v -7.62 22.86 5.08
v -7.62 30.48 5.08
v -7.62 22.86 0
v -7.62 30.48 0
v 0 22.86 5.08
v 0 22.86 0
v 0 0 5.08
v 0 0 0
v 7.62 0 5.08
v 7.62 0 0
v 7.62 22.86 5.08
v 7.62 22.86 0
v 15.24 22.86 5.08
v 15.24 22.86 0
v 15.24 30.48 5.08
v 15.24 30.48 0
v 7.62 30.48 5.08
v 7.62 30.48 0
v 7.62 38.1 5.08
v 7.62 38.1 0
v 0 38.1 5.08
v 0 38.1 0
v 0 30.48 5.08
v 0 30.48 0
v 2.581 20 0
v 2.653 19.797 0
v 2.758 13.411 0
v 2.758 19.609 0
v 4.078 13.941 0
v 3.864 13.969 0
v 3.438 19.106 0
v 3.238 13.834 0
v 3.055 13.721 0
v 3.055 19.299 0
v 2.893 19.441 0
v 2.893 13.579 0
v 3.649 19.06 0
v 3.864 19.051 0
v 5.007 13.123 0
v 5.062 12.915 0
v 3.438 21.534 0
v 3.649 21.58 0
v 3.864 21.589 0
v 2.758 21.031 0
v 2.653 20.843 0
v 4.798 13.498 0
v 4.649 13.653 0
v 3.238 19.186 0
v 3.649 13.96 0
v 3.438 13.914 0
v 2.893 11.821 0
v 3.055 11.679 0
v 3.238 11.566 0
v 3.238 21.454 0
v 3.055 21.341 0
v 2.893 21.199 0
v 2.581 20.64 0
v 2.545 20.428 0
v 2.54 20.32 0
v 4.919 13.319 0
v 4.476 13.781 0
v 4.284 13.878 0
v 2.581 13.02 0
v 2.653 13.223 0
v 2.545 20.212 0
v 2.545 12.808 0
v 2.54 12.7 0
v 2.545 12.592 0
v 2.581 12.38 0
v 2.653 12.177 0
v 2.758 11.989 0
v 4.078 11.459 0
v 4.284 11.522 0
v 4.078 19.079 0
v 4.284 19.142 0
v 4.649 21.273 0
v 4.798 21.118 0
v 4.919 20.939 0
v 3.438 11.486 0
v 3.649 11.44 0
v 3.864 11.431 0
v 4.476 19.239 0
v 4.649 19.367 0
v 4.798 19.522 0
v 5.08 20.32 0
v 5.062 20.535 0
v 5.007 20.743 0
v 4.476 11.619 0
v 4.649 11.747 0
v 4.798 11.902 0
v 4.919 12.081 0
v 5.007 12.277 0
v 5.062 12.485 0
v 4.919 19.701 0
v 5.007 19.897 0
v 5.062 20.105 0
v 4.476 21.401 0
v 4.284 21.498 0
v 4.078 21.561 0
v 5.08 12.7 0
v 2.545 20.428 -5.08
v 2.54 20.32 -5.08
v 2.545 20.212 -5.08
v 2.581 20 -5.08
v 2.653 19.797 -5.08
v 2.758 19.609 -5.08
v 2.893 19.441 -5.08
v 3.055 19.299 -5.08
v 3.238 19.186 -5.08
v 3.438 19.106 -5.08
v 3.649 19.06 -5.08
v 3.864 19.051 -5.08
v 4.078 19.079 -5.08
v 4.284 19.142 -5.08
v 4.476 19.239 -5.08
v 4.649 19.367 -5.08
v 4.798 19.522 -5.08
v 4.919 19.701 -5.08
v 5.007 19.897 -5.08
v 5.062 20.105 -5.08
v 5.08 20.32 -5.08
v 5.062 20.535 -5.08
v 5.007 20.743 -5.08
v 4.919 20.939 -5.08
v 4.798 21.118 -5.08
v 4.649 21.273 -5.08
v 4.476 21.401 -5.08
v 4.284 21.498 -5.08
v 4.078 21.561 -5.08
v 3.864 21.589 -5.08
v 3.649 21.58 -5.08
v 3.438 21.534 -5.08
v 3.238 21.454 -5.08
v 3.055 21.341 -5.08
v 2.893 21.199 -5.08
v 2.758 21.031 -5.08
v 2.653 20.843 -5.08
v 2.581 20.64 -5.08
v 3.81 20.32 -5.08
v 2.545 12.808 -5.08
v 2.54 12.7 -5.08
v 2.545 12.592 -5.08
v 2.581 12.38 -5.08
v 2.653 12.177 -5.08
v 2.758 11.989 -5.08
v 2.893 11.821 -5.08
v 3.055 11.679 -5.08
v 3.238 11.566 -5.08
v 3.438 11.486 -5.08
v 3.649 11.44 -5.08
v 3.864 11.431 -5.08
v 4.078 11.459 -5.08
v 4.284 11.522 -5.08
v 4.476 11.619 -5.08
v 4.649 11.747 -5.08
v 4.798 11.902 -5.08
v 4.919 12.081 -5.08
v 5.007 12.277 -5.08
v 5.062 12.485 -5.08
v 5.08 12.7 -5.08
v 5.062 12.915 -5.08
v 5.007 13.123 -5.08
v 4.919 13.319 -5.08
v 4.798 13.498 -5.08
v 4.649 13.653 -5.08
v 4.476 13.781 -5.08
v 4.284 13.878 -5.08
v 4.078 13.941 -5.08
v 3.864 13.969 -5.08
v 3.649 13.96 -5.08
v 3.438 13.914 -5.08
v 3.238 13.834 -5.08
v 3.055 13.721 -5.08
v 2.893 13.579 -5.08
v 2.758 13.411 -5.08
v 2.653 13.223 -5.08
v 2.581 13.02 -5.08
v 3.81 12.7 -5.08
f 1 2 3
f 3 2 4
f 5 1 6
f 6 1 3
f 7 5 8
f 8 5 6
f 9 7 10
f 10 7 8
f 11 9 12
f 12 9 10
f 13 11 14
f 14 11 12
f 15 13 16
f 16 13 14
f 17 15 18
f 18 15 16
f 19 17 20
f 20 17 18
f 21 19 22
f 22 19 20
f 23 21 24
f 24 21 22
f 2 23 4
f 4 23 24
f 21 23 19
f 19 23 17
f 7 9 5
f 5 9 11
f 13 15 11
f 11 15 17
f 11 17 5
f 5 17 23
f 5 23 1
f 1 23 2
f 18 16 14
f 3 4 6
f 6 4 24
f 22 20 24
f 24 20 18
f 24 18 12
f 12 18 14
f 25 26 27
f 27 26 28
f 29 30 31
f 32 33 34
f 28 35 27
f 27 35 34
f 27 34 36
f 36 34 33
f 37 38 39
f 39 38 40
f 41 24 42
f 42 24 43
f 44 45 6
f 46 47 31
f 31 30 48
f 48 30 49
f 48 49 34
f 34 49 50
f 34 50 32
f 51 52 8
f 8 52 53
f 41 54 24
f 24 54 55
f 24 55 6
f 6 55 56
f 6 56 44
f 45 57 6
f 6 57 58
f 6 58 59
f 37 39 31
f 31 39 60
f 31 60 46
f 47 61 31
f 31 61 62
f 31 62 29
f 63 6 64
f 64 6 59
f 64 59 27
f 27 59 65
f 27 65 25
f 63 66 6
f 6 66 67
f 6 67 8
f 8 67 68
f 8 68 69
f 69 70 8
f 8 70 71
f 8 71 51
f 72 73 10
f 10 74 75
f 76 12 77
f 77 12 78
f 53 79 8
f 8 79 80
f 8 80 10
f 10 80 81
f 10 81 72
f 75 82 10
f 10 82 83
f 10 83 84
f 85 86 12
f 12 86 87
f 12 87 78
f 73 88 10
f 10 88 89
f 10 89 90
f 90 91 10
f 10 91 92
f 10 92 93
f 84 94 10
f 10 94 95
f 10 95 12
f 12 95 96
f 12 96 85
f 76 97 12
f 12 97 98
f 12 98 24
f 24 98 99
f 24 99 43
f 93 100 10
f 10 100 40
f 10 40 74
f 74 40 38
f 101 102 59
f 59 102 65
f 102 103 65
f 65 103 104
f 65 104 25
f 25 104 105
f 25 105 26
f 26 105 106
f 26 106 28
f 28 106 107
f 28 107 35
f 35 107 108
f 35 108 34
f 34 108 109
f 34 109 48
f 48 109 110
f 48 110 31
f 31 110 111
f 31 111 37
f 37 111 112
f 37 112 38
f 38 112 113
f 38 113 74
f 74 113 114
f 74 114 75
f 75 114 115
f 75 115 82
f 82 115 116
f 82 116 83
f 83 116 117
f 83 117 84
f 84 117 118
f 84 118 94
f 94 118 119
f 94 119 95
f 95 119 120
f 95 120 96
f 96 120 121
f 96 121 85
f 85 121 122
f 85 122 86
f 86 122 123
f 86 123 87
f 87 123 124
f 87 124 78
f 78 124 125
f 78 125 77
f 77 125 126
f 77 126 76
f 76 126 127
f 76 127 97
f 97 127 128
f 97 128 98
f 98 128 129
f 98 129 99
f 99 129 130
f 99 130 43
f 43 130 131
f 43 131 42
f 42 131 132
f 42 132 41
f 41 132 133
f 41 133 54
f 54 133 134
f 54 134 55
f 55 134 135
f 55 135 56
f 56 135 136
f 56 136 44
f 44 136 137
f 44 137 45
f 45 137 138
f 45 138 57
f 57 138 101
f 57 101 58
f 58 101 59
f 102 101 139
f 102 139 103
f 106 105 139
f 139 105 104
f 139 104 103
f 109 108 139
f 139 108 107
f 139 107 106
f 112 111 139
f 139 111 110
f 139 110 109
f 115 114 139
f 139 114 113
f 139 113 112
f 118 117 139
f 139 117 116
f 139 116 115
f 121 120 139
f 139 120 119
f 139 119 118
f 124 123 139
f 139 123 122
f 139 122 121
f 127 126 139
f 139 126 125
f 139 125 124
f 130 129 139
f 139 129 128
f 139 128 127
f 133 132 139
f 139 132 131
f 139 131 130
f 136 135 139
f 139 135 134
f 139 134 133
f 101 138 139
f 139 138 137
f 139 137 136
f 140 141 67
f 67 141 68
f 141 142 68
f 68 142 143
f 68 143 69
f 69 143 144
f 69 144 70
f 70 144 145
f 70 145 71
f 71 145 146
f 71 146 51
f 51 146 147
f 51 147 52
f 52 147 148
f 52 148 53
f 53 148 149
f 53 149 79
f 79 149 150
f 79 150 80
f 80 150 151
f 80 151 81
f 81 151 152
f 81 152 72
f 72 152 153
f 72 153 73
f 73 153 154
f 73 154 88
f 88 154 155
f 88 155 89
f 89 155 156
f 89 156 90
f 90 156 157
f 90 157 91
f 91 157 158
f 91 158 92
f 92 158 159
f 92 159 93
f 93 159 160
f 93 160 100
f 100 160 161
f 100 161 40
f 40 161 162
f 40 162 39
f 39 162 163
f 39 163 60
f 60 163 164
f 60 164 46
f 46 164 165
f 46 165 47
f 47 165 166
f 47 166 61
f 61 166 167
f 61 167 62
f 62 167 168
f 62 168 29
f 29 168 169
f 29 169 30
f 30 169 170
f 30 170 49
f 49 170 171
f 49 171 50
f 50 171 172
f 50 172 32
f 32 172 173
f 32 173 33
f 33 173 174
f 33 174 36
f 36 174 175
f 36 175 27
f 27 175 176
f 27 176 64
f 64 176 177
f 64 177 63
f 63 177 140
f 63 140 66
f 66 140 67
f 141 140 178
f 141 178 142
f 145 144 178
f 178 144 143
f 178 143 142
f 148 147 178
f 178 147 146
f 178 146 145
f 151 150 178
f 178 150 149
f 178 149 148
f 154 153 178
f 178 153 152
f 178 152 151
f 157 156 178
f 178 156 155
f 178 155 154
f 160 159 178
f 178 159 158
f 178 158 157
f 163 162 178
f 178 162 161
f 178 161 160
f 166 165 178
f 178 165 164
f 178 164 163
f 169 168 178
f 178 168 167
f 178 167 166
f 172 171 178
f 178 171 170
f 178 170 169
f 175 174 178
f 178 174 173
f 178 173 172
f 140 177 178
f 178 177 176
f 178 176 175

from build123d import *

# Parameters (mm, degrees)
BOSS_EXTRUDE1_DEPTH = 5.08
SKETCH2_R           = 1.27
BOSS_EXTRUDE2_DEPTH = 5.08


with BuildPart() as part:
    # Sketch1 → Boss-Extrude1 (new body)
    with BuildSketch(Plane.XY):
        Polygon((0, 0), (0, 22.86), (-7.62, 22.86), (-7.62, 30.48), (0, 30.48), (0, 38.1), (7.62, 38.1), (7.62, 30.48), (15.24, 30.48), (15.24, 22.86), (7.62, 22.86), (7.62, 0), align=None)
    extrude(amount=BOSS_EXTRUDE1_DEPTH)

    # Sketch2 → Boss-Extrude2 (add)
    with BuildSketch(Plane(origin=(0, 0, 0), x_dir=(-1, 0, 0), z_dir=(0, 0, -1))):
        with Locations((-3.81, 20.32)):
            Circle(SKETCH2_R)
        with Locations((-3.81, 12.7)):
            Circle(SKETCH2_R)
    extrude(amount=BOSS_EXTRUDE2_DEPTH)


solid = part.part
